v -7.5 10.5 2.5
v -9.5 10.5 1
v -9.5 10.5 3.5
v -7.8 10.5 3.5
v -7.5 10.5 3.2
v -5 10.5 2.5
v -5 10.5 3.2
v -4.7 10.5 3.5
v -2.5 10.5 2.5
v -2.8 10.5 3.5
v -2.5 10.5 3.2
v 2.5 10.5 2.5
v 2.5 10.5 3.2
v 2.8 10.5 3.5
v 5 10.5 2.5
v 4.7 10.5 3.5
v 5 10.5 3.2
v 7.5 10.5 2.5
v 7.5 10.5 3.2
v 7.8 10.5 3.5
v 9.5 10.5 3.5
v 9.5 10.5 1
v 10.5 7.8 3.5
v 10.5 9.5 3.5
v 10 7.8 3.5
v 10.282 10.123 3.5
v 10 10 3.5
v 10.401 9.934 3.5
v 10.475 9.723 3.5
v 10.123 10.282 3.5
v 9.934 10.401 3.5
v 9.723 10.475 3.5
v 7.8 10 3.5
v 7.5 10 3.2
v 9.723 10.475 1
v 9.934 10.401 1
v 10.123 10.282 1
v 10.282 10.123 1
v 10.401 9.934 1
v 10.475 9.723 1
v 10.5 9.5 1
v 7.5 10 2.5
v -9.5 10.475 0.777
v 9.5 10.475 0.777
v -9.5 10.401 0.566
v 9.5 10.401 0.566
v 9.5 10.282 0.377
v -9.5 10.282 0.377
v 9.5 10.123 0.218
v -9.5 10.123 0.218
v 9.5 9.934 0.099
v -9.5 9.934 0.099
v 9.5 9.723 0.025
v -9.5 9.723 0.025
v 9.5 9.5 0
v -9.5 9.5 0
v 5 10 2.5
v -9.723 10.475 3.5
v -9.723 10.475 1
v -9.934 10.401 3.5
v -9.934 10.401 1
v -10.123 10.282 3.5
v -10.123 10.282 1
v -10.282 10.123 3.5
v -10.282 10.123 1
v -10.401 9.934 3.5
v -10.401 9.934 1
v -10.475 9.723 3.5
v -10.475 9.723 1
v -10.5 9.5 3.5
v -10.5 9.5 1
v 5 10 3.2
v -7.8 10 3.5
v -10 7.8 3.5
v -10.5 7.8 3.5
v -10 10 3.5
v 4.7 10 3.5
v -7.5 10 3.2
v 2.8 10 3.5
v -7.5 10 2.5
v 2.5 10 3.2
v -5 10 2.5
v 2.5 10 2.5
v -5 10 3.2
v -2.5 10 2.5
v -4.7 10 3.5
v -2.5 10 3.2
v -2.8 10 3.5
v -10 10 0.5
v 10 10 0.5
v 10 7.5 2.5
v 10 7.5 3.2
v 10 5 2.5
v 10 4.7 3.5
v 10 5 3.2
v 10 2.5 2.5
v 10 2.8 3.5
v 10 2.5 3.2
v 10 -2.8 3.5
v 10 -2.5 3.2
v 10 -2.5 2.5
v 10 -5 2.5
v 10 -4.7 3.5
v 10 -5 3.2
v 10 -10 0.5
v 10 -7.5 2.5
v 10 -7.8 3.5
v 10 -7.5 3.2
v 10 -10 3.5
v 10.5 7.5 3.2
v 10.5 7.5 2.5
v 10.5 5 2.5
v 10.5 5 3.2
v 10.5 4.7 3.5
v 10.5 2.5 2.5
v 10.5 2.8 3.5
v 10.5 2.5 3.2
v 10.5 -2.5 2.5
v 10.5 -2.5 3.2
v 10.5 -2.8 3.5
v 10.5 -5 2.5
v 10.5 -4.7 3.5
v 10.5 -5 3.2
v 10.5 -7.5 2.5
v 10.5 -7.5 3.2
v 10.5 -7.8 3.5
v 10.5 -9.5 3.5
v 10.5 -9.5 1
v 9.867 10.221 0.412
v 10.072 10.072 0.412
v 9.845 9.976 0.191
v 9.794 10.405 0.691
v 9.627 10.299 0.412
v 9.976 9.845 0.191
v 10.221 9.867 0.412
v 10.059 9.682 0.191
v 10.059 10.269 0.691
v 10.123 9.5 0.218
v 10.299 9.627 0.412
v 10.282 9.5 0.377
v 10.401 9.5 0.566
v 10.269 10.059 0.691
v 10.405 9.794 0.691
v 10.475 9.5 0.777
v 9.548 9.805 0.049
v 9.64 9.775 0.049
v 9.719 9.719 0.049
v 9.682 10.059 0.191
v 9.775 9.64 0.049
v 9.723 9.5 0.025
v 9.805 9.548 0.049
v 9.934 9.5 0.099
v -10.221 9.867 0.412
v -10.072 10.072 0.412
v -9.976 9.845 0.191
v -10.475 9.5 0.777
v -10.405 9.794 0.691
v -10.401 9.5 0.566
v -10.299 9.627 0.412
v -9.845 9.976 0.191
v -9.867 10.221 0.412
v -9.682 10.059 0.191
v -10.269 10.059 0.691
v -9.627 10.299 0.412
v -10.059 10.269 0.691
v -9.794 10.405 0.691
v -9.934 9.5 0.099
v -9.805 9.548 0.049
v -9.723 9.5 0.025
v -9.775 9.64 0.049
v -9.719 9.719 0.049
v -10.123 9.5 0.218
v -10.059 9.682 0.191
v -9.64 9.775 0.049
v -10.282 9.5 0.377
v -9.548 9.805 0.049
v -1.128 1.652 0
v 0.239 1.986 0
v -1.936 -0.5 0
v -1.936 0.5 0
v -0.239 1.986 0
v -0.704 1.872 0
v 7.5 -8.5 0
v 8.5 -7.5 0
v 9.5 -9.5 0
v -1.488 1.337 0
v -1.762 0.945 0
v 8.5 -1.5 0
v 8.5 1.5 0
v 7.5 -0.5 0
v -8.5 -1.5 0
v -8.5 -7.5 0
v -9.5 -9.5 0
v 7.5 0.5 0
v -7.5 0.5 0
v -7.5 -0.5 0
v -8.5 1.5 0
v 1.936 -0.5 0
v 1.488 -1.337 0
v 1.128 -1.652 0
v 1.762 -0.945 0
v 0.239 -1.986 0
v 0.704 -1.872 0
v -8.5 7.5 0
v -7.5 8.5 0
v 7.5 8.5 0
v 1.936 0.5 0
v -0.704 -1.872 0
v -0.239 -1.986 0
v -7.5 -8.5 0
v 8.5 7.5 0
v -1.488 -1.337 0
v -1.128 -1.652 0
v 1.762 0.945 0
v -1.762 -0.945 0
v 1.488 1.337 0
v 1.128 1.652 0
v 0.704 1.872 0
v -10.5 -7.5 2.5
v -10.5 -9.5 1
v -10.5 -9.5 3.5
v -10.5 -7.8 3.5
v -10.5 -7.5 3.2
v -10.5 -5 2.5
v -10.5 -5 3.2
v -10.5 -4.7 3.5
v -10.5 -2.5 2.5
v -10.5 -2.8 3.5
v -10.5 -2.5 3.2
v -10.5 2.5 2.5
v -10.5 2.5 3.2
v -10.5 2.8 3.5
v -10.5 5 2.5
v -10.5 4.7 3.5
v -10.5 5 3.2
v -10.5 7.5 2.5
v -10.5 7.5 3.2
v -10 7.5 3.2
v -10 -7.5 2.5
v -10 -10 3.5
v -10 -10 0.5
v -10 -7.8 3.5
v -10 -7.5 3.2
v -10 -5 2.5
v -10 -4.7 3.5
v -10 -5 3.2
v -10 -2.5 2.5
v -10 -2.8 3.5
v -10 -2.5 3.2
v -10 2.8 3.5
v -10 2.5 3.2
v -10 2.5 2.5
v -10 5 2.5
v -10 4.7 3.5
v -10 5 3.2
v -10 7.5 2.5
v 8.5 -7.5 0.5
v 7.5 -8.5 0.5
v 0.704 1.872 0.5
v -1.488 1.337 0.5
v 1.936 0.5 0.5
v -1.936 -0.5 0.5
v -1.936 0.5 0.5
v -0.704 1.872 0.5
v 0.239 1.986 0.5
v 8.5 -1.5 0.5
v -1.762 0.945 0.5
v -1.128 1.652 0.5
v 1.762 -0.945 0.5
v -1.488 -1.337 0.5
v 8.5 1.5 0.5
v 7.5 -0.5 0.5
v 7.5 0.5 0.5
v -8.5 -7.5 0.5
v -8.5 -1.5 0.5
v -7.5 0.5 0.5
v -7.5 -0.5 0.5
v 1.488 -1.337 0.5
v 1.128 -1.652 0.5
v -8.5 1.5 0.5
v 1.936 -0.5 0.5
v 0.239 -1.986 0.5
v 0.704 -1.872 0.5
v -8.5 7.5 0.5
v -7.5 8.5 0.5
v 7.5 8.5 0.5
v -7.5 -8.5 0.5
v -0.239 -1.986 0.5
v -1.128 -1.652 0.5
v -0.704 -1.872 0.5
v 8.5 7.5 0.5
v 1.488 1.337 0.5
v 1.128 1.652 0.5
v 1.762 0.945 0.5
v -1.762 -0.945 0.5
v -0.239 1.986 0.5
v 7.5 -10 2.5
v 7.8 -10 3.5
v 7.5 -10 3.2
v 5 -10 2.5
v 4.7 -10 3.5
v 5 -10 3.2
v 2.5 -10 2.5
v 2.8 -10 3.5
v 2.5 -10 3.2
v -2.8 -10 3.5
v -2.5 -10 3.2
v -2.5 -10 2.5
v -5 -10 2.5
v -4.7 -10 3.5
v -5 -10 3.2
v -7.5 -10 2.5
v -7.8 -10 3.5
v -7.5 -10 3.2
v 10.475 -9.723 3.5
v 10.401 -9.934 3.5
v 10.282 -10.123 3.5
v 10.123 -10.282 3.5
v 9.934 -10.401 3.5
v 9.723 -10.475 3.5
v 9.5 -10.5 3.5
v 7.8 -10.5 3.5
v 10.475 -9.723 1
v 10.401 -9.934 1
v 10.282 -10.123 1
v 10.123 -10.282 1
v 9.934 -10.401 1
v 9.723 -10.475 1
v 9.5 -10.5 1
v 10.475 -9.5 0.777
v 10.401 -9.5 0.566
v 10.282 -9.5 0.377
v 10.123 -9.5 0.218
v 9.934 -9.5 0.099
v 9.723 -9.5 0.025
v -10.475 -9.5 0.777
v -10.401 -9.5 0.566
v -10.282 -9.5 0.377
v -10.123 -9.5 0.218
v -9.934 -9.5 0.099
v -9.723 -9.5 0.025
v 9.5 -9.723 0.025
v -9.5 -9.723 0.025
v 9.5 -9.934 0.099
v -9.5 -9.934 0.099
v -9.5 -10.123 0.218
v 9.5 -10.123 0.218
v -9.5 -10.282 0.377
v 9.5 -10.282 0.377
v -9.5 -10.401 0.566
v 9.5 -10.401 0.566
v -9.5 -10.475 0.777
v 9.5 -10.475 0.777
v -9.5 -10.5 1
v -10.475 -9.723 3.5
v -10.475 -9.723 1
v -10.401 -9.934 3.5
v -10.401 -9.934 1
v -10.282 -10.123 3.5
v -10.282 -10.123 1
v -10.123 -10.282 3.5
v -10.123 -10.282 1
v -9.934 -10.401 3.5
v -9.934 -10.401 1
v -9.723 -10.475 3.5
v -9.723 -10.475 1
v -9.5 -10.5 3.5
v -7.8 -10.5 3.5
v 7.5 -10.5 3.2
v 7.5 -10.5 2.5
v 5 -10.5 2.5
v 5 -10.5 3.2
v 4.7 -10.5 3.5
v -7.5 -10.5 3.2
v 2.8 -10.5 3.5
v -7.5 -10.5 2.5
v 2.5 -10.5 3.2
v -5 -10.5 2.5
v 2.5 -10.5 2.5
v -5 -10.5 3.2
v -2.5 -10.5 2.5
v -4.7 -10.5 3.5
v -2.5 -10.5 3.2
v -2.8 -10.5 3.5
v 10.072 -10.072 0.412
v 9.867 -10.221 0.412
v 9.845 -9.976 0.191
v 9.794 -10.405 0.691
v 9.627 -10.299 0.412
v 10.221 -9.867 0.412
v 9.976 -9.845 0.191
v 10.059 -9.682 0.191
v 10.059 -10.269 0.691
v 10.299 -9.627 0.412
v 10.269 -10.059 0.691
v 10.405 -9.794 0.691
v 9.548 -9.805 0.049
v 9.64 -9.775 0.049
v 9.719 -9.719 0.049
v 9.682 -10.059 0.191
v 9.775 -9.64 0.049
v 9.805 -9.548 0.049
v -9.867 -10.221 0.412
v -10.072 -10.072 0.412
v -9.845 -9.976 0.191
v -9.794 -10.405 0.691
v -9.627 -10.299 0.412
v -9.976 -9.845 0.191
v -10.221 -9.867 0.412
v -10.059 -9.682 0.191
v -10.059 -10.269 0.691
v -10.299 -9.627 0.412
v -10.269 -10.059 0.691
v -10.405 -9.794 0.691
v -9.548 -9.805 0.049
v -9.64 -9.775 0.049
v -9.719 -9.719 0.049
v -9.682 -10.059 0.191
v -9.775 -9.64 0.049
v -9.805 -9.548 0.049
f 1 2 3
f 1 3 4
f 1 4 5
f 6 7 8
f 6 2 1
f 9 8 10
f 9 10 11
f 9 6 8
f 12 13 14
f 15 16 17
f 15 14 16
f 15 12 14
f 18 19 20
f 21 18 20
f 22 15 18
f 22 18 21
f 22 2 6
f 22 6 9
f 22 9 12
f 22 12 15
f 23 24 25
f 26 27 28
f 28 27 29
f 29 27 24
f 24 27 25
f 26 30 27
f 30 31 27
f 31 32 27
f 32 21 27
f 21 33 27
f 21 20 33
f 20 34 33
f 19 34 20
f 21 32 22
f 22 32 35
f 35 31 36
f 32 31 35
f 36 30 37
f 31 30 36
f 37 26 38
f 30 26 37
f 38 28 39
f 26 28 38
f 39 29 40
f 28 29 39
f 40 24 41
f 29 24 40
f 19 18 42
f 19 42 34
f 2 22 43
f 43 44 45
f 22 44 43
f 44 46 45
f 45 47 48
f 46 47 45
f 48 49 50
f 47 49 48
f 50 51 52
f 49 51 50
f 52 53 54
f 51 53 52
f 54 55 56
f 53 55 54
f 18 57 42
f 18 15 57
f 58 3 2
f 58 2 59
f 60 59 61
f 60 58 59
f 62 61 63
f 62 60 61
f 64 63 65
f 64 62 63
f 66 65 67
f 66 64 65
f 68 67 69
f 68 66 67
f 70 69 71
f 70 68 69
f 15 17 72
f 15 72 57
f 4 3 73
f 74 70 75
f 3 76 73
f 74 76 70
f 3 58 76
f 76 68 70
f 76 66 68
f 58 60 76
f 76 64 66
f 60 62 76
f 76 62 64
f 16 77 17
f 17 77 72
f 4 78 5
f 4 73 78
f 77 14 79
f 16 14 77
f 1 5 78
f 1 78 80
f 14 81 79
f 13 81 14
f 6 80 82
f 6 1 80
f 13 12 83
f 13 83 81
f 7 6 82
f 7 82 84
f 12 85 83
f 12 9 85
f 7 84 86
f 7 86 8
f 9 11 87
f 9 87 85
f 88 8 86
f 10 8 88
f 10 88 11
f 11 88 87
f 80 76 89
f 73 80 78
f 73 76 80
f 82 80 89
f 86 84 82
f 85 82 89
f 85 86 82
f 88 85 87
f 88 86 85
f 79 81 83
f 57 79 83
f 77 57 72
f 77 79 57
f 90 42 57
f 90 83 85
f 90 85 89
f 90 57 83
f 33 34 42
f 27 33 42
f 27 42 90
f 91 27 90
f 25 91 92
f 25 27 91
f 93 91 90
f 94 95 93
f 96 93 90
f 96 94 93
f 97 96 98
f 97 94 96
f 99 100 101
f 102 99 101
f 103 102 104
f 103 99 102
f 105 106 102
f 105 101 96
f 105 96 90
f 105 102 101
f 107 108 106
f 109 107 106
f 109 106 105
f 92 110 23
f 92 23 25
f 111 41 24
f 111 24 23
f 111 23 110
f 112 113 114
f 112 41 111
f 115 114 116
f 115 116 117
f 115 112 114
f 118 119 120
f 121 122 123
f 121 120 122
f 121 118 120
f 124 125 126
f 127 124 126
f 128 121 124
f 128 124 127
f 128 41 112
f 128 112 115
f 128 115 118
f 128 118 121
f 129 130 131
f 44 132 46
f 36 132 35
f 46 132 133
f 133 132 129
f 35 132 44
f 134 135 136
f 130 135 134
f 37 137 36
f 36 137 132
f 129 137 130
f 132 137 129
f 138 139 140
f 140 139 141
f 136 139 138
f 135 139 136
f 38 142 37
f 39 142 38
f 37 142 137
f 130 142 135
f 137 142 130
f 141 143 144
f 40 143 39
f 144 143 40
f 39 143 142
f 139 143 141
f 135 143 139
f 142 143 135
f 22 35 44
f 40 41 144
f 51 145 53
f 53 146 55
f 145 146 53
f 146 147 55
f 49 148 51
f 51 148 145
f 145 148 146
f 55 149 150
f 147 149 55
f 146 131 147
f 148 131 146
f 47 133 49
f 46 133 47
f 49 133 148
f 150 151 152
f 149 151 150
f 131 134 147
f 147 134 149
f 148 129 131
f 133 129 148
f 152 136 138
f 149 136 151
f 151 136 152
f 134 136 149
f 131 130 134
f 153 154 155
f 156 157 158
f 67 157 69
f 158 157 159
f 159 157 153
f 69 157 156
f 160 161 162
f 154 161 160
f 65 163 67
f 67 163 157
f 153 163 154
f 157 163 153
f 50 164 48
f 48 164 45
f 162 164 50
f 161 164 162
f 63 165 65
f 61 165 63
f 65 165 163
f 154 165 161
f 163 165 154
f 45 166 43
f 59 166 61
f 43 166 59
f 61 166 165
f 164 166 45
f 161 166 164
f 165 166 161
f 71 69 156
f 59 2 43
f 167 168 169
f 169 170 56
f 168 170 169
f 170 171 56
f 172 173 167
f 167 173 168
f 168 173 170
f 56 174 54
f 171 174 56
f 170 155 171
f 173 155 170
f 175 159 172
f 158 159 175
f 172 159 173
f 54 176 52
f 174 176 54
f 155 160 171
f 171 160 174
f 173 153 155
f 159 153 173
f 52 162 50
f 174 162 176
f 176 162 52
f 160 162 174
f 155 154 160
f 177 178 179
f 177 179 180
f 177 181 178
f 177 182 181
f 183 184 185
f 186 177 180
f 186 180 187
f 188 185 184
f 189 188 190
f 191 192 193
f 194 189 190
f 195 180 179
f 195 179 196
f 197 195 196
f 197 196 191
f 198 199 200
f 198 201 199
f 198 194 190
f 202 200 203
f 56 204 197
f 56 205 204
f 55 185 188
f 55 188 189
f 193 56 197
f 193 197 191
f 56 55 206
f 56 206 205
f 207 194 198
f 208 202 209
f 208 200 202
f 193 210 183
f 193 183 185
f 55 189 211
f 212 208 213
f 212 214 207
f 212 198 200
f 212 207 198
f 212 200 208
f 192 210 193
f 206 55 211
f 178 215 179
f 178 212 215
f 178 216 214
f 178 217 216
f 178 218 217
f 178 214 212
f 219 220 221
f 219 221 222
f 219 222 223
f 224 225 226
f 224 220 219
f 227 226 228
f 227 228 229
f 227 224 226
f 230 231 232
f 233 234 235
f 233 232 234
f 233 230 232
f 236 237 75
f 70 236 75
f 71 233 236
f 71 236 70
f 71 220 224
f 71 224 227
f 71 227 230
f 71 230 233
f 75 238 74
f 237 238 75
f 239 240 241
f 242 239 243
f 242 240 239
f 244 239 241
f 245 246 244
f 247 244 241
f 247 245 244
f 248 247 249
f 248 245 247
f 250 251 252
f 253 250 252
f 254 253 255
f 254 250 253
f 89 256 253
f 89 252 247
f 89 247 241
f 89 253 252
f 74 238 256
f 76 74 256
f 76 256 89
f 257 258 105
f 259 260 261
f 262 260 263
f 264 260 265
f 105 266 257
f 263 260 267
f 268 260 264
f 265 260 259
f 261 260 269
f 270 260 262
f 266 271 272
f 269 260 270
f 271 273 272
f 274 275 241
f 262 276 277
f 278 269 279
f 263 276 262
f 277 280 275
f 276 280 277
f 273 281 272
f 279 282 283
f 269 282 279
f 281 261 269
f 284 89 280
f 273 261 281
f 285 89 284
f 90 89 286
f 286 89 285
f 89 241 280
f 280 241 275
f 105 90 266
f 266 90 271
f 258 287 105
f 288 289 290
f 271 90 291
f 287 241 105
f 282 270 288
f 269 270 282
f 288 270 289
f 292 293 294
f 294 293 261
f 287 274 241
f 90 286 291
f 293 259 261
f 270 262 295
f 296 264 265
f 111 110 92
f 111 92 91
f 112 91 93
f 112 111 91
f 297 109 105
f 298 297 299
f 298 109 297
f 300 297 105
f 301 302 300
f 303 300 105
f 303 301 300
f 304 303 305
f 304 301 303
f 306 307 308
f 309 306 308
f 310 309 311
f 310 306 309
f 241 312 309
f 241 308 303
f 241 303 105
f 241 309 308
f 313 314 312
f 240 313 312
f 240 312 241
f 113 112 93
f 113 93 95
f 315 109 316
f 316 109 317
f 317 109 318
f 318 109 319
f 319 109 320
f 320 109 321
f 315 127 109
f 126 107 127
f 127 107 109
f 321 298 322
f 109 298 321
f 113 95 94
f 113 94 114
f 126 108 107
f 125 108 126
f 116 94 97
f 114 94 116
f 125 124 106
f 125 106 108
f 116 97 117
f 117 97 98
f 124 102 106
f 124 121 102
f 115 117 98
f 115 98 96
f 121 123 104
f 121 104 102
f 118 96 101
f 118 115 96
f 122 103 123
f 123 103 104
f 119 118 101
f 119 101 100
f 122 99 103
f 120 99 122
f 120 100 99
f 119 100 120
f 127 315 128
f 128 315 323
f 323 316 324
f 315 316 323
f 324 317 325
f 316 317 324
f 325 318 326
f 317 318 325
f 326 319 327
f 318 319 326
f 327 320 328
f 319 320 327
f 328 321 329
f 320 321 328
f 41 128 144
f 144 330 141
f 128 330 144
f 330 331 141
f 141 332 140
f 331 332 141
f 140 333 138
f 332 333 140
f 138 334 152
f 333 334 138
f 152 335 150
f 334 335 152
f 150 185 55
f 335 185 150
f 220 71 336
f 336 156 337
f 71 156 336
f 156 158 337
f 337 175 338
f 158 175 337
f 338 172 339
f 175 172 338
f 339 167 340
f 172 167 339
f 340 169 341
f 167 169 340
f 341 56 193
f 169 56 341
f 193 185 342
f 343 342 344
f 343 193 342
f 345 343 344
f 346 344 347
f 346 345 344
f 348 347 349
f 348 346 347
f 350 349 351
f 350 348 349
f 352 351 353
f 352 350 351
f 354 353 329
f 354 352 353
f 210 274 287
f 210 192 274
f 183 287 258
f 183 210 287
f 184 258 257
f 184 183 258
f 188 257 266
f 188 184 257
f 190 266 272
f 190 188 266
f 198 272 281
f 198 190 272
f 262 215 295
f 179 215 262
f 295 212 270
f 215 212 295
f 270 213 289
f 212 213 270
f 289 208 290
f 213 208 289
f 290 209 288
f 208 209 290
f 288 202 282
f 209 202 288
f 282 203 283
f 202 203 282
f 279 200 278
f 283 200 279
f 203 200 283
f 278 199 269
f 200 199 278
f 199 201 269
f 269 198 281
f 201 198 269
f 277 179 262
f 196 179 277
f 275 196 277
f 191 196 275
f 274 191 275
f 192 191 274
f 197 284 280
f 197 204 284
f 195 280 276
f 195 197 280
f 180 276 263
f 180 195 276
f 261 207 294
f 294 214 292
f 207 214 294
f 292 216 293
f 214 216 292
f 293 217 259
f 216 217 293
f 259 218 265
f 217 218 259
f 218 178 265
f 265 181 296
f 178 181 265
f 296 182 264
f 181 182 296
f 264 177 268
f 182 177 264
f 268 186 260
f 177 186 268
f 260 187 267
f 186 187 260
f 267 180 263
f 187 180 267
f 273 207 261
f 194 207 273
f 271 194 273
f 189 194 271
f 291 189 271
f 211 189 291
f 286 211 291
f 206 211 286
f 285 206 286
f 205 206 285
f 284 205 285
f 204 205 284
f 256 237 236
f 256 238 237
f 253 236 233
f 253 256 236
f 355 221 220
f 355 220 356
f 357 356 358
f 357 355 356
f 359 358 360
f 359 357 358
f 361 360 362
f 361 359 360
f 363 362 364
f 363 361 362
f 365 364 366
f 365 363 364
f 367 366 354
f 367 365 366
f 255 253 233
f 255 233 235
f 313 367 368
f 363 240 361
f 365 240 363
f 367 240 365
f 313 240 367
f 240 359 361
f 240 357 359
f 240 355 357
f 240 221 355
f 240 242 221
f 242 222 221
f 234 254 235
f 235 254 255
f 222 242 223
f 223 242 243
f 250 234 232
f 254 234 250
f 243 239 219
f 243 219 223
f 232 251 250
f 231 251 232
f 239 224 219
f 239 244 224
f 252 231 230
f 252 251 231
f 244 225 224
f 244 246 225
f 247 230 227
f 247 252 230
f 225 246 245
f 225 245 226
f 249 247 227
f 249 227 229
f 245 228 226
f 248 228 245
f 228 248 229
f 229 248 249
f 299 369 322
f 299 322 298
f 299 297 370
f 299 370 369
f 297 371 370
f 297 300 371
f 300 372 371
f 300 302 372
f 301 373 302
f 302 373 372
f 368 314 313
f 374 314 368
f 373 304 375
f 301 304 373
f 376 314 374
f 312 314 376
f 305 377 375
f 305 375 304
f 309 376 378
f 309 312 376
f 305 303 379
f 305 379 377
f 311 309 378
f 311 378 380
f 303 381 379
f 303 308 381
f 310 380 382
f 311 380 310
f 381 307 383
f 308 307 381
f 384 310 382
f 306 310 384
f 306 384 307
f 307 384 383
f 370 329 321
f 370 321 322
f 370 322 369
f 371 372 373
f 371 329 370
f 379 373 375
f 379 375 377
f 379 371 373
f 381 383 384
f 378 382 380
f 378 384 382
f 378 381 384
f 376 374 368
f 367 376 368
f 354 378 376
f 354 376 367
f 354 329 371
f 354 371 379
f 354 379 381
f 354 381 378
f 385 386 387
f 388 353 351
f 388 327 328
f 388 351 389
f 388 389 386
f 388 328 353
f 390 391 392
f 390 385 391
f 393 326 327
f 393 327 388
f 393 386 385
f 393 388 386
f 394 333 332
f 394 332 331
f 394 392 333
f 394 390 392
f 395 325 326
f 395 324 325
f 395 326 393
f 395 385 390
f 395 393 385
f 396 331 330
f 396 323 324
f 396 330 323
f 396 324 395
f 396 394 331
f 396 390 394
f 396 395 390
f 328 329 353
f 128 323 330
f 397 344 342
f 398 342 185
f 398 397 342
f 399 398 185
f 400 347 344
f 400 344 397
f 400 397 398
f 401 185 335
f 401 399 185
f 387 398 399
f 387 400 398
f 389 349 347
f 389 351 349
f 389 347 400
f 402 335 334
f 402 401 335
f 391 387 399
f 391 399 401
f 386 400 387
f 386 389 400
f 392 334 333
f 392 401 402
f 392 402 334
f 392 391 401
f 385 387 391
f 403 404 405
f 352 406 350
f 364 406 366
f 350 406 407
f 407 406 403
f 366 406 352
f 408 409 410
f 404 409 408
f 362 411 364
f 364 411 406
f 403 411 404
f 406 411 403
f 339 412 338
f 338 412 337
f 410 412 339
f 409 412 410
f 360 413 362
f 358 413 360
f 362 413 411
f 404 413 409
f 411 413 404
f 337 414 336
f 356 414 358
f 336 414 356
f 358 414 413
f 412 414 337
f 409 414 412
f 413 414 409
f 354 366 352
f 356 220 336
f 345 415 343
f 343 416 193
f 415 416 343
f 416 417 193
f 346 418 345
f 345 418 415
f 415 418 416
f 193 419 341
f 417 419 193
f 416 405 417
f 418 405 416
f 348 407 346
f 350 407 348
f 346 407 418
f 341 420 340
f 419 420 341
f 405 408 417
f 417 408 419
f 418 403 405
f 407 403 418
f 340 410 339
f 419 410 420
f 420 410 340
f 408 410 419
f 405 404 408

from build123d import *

# Parameters (mm, degrees)
SKETCH_W        = 21
SKETCH_H        = 21
PAD_DEPTH       = 3.5
COPYSKETCH001_W = 20
COPYSKETCH001_H = 20
POCKET_DEPTH    = 3
FILLET_R        = 1
SKETCH001_W     = 2.5
SKETCH001_H     = 2
SKETCH001_W_2   = 5
POCKET001_DEPTH = 21.001
SKETCH002_W     = 2.5
SKETCH002_H     = 2
SKETCH002_W_2   = 5
POCKET002_DEPTH = 21.001
CHAMFER_SIZE    = 0.3


with BuildPart() as part:
    # Sketch → Pad (new body)
    with BuildSketch(Plane.XY):
        Rectangle(SKETCH_W, SKETCH_H)
        with BuildLine():
            Line((-8.5, 7.5), (-7.5, 8.5))
            Line((-7.5, 8.5), (7.5, 8.5))
            Line((7.5, 8.5), (8.5, 7.5))
            Line((8.5, 7.5), (8.5, 1.5))
            Line((8.5, 1.5), (7.5, 0.5))
            Line((7.5, 0.5), (1.936492, 0.5))
            ThreePointArc((1.936492, 0.5), (0, 2), (-1.936492, 0.5))
            Line((-7.5, 0.5), (-1.936492, 0.5))
            Line((-8.5, 1.5), (-7.5, 0.5))
            Line((-8.5, 7.5), (-8.5, 1.5))
        make_face(mode=Mode.SUBTRACT)
        with BuildLine():
            Line((-8.5, -7.5), (-7.5, -8.5))
            Line((-7.5, -8.5), (7.5, -8.5))
            Line((7.5, -8.5), (8.5, -7.5))
            Line((8.5, -7.5), (8.5, -1.5))
            Line((8.5, -1.5), (7.5, -0.5))
            Line((7.5, -0.5), (1.936492, -0.5))
            ThreePointArc((-1.936492, -0.5), (0, -2), (1.936492, -0.5))
            Line((-7.5, -0.5), (-1.936492, -0.5))
            Line((-8.5, -1.5), (-7.5, -0.5))
            Line((-8.5, -7.5), (-8.5, -1.5))
        make_face(mode=Mode.SUBTRACT)
    extrude(amount=PAD_DEPTH)

    # CopySketch001 → Pocket (cut)
    with BuildSketch(Plane.XY.offset(3.5)):
        Rectangle(COPYSKETCH001_W, COPYSKETCH001_H)
    extrude(amount=-POCKET_DEPTH, mode=Mode.SUBTRACT)

    # Fillet
    fillet_edges = [part.edges().sort_by_distance(p)[0] for p in [
        (-10.5, 10.5, 1.75),
        (10.5, 10.5, 1.75),
        (10.5, -10.5, 1.75),
        (-10.5, -10.5, 1.75),
        (0, -10.5, 0),
        (-10.5, 0, 0),
        (0, 10.5, 0),
        (10.5, 0, 0),
    ]]
    fillet(fillet_edges, radius=FILLET_R)

    # Sketch001 (on Face7 of Fillet) → Pocket001 (cut, through all)
    with BuildSketch(Plane.YZ.offset(10.5)):
        with Locations((-6.25, 3.5)):
            Rectangle(SKETCH001_W, SKETCH001_H)
        with Locations((0, 3.5)):
            Rectangle(SKETCH001_W_2, SKETCH001_H)
        with Locations((6.25, 3.5)):
            Rectangle(SKETCH001_W, SKETCH001_H)
    extrude(amount=-POCKET001_DEPTH, mode=Mode.SUBTRACT)

    # Sketch002 (on Face1 of Pocket001) → Pocket002 (cut, through all)
    with BuildSketch(Plane(origin=(0, 10.5, 0), x_dir=(-1, 0, 0), z_dir=(0, 1, 0))):
        with Locations((-6.25, 3.5)):
            Rectangle(SKETCH002_W, SKETCH002_H)
        with Locations((0, 3.5)):
            Rectangle(SKETCH002_W_2, SKETCH002_H)
        with Locations((6.25, 3.5)):
            Rectangle(SKETCH002_W, SKETCH002_H)
    extrude(amount=-POCKET002_DEPTH, mode=Mode.SUBTRACT)

    # Chamfer
    chamfer_edges = [part.edges().sort_by_distance(p)[0] for p in [
        (10.25, -5, 3.5),
        (10.25, -2.5, 3.5),
        (10.25, 2.5, 3.5),
        (10.25, 5, 3.5),
        (10.25, -7.5, 3.5),
        (7.5, -10.25, 3.5),
        (5, -10.25, 3.5),
        (2.5, -10.25, 3.5),
        (-2.5, -10.25, 3.5),
        (-5, -10.25, 3.5),
        (-7.5, -10.25, 3.5),
        (-10.25, -7.5, 3.5),
        (-10.25, -5, 3.5),
        (-10.25, -2.5, 3.5),
        (-10.25, 2.5, 3.5),
        (-10.25, 5, 3.5),
        (-10.25, 7.5, 3.5),
        (5, 10.25, 3.5),
        (7.5, 10.25, 3.5),
        (10.25, 7.5, 3.5),
        (-2.5, 10.25, 3.5),
        (2.5, 10.25, 3.5),
        (-7.5, 10.25, 3.5),
        (-5, 10.25, 3.5),
    ]]
    chamfer(chamfer_edges, length=CHAMFER_SIZE)


solid = part.part
